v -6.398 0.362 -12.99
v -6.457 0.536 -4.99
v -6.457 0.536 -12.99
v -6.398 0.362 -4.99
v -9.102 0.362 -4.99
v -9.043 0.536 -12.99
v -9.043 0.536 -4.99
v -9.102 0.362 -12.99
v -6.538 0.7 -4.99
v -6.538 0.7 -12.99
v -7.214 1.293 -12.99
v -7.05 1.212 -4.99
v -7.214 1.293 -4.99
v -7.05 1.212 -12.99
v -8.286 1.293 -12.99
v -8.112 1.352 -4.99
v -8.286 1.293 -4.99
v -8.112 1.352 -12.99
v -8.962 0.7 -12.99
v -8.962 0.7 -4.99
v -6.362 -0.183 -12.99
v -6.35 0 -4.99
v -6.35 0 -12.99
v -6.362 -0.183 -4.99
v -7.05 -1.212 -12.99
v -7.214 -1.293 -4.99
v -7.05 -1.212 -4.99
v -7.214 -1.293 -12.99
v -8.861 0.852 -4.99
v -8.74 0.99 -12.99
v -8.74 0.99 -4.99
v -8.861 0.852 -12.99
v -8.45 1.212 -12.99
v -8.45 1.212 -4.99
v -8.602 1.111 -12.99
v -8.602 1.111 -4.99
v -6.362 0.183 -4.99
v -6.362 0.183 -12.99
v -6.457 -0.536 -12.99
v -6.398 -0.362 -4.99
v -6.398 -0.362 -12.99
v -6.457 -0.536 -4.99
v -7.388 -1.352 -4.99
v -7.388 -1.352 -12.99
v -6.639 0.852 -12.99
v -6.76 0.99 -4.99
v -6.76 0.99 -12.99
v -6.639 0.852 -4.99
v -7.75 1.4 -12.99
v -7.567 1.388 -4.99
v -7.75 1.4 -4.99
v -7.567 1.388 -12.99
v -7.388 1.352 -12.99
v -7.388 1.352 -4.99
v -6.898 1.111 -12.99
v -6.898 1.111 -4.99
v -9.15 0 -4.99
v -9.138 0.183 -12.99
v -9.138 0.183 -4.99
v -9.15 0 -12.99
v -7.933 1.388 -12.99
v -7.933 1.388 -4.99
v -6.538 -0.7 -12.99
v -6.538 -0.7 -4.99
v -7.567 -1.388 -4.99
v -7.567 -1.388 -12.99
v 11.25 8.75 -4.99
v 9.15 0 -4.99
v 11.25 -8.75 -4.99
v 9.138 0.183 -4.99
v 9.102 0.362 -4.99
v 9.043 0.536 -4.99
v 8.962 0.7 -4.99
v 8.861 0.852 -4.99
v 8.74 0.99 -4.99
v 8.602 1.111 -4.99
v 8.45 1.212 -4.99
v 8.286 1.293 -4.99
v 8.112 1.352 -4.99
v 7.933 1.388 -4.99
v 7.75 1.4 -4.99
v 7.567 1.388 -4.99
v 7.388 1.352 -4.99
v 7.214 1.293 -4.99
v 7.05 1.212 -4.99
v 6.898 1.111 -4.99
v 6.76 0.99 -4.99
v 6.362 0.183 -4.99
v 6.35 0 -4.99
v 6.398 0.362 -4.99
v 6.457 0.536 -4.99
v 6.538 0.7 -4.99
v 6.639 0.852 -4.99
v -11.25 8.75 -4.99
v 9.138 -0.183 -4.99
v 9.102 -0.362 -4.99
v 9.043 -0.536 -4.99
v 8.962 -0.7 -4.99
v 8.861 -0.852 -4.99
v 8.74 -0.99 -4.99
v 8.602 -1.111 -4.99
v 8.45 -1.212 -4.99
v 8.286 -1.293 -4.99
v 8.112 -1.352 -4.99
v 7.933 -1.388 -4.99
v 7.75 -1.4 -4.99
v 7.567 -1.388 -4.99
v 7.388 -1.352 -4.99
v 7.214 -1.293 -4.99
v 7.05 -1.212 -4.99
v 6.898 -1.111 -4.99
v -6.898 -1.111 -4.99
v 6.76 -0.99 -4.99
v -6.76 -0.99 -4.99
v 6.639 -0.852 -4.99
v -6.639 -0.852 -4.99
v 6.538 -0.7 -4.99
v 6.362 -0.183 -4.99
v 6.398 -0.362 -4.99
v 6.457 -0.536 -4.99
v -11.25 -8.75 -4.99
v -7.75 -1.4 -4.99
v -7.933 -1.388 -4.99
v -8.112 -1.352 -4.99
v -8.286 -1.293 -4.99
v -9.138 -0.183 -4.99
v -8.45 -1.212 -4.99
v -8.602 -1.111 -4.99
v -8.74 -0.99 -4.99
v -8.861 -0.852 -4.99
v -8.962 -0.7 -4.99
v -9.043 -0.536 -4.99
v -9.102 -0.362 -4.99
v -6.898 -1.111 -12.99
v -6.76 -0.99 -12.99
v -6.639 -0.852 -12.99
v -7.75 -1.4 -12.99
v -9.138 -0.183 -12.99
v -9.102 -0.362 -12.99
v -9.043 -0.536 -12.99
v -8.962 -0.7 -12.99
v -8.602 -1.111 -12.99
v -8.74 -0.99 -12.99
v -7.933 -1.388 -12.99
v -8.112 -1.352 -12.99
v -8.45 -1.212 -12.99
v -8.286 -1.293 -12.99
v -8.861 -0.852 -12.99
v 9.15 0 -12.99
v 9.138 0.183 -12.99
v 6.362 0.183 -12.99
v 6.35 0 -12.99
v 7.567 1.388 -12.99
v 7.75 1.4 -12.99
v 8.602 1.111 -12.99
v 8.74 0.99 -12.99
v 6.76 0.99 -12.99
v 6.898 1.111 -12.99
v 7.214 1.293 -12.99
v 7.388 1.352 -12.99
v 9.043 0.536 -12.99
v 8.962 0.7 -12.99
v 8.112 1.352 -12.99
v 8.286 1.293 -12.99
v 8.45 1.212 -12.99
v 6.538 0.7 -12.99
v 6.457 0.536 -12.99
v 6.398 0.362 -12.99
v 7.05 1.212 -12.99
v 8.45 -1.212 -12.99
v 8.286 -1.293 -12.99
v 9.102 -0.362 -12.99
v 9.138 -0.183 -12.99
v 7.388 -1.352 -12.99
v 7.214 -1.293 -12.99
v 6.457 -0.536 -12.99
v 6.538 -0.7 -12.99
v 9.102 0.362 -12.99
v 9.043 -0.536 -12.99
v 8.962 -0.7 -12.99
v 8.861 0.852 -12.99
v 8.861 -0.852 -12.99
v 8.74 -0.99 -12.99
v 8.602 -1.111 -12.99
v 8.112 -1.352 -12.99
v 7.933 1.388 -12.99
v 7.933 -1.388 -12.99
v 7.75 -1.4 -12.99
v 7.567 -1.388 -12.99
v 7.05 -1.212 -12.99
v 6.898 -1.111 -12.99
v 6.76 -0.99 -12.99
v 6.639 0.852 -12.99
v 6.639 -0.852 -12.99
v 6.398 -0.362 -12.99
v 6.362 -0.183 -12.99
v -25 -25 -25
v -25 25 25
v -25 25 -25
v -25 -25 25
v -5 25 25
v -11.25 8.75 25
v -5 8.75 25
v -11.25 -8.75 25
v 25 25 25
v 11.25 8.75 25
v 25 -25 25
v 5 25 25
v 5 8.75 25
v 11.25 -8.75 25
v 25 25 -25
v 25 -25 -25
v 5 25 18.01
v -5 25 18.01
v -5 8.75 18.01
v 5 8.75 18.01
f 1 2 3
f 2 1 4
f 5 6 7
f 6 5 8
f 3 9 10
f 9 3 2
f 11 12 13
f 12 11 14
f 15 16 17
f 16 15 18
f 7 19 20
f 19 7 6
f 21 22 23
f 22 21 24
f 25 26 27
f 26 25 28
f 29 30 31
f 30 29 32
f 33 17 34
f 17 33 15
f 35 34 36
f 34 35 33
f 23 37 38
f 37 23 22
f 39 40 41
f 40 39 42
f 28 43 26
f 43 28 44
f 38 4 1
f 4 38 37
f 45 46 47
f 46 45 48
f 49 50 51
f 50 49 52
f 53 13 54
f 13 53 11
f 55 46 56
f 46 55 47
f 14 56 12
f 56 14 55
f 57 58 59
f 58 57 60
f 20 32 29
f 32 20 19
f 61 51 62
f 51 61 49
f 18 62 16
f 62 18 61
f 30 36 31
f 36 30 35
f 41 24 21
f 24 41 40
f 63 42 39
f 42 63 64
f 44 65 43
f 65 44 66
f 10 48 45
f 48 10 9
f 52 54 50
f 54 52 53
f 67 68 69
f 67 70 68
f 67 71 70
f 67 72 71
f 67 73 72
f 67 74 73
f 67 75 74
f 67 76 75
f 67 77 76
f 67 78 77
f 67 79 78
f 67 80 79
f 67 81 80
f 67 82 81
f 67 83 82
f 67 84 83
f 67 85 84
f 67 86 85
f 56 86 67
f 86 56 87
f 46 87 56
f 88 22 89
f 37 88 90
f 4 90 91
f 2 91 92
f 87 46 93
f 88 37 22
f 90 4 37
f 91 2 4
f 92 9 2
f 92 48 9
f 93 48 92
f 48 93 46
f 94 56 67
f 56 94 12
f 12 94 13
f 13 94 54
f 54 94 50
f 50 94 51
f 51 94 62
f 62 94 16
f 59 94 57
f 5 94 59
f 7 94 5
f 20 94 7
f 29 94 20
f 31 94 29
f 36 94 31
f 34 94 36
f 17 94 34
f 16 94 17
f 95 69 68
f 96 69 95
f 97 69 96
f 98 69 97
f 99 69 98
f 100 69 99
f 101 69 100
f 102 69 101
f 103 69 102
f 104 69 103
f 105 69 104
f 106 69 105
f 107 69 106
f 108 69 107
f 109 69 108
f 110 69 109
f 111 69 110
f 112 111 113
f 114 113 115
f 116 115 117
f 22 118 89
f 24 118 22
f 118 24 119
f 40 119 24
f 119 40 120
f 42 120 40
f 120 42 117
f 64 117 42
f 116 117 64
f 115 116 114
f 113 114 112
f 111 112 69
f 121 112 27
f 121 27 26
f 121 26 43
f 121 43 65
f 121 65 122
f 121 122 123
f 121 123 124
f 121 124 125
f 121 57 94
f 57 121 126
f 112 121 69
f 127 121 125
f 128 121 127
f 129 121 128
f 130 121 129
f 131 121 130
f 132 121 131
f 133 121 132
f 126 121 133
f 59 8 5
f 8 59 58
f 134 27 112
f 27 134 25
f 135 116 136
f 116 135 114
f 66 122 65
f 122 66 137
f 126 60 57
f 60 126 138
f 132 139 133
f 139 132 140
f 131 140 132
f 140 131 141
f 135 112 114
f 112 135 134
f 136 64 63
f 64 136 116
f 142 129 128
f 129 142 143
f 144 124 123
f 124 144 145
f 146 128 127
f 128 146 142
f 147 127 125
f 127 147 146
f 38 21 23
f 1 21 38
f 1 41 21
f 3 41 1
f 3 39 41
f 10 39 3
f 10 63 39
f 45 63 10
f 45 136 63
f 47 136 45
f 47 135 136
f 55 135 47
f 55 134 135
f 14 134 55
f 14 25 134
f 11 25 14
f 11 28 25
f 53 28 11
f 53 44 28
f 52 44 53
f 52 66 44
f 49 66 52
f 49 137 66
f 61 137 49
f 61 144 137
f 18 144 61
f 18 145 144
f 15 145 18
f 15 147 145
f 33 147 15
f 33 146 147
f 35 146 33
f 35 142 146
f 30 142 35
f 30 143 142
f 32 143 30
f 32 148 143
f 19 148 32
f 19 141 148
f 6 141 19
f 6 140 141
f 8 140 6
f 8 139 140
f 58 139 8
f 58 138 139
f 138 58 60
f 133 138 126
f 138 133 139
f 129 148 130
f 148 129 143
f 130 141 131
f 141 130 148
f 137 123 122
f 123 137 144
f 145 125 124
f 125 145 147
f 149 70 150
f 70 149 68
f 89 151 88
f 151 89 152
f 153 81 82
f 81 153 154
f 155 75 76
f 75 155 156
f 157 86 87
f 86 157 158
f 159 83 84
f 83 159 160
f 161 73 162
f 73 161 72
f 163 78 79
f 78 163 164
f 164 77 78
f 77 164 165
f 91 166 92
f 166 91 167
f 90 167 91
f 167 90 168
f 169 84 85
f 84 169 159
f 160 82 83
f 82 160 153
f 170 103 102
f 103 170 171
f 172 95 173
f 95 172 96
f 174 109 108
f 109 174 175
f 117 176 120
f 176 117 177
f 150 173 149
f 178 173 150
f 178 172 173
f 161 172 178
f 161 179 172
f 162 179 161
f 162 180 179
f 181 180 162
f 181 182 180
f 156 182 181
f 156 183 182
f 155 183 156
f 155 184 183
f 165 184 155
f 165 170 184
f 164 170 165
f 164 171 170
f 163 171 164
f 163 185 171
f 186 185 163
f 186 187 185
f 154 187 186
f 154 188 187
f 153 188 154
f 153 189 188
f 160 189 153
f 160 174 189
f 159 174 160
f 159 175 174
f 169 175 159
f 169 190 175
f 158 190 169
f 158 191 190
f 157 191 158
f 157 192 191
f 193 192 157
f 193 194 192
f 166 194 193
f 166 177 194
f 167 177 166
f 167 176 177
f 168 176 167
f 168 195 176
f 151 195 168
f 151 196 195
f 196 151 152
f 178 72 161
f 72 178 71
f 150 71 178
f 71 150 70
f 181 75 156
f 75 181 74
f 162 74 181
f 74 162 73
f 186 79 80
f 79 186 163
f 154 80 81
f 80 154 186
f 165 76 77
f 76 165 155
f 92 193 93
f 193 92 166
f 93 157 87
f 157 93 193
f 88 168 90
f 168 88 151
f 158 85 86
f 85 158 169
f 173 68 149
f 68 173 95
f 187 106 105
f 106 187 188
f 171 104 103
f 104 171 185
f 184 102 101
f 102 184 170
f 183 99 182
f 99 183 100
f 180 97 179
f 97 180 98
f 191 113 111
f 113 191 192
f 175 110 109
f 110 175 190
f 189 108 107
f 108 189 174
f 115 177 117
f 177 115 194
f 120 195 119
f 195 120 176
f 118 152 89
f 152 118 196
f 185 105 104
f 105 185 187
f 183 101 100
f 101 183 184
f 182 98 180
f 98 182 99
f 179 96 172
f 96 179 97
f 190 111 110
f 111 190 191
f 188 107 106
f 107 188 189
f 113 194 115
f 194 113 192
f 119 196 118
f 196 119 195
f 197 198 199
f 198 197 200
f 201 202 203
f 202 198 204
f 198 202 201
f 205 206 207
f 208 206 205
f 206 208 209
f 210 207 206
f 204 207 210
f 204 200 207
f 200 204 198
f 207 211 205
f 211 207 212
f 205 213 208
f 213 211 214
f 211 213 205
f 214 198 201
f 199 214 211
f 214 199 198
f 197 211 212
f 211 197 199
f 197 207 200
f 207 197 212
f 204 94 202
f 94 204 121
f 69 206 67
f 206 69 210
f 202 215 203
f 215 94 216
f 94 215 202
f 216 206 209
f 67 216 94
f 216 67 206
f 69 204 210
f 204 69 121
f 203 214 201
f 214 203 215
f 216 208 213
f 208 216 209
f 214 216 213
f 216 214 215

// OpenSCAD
// calibration_cube.scad 
// Six-position accelerometer calibration cube for the GY-521 / MPU6050. 
// Units: mm. Preview with F5, render with F6, then export STL. 
  
// ===== MEASURE THESE ON YOUR OWN BOARD WITH CALIPERS ===== 
board_x      = 21.5;   // long edge of the PCB 
board_y      = 16.5;   // short edge of the PCB 
hole_spacing = 15.5;   // centre-to-centre of the two mounting holes 
// ========================================================= 
  
cube_size    = 50; 
pocket_depth = 30;     // deep enough for the header and connectors 
fit          = 0.5;    // printing clearance around the board 
hole_dia     = 2.8;    // undersized so an M3 screw self-taps into PLA 
hole_depth   = 8; 
channel_w    = 10;     // wire exit channel 
channel_h    = 7; 
  
$fn = 48; 
  
module calibration_cube() { 
    difference() { 
        cube([cube_size, cube_size, cube_size], center = true); 
  
        // sensor well, opening on the +Z face 
        translate([0, 0, cube_size/2 - pocket_depth/2 + 0.01]) 
            cube([board_x + 2*fit, board_y + 2*fit, pocket_depth], 
                 center = true); 
  
        // two blind self-tapping holes in the well floor 
        for (s = [-1, 1]) 
            translate([s * hole_spacing/2, 0, 
                       cube_size/2 - pocket_depth - hole_depth/2 + 0.01]) 
                cylinder(h = hole_depth, d = hole_dia, center = true); 
  
        // wire exit channel through the +Y wall at the top edge 
translate([0, cube_size/4, cube_size/2 - channel_h/2 + 0.01]) 
cube([channel_w, cube_size/2 + 0.02, channel_h], center = true); 
} 
} 
calibration_cube();     
